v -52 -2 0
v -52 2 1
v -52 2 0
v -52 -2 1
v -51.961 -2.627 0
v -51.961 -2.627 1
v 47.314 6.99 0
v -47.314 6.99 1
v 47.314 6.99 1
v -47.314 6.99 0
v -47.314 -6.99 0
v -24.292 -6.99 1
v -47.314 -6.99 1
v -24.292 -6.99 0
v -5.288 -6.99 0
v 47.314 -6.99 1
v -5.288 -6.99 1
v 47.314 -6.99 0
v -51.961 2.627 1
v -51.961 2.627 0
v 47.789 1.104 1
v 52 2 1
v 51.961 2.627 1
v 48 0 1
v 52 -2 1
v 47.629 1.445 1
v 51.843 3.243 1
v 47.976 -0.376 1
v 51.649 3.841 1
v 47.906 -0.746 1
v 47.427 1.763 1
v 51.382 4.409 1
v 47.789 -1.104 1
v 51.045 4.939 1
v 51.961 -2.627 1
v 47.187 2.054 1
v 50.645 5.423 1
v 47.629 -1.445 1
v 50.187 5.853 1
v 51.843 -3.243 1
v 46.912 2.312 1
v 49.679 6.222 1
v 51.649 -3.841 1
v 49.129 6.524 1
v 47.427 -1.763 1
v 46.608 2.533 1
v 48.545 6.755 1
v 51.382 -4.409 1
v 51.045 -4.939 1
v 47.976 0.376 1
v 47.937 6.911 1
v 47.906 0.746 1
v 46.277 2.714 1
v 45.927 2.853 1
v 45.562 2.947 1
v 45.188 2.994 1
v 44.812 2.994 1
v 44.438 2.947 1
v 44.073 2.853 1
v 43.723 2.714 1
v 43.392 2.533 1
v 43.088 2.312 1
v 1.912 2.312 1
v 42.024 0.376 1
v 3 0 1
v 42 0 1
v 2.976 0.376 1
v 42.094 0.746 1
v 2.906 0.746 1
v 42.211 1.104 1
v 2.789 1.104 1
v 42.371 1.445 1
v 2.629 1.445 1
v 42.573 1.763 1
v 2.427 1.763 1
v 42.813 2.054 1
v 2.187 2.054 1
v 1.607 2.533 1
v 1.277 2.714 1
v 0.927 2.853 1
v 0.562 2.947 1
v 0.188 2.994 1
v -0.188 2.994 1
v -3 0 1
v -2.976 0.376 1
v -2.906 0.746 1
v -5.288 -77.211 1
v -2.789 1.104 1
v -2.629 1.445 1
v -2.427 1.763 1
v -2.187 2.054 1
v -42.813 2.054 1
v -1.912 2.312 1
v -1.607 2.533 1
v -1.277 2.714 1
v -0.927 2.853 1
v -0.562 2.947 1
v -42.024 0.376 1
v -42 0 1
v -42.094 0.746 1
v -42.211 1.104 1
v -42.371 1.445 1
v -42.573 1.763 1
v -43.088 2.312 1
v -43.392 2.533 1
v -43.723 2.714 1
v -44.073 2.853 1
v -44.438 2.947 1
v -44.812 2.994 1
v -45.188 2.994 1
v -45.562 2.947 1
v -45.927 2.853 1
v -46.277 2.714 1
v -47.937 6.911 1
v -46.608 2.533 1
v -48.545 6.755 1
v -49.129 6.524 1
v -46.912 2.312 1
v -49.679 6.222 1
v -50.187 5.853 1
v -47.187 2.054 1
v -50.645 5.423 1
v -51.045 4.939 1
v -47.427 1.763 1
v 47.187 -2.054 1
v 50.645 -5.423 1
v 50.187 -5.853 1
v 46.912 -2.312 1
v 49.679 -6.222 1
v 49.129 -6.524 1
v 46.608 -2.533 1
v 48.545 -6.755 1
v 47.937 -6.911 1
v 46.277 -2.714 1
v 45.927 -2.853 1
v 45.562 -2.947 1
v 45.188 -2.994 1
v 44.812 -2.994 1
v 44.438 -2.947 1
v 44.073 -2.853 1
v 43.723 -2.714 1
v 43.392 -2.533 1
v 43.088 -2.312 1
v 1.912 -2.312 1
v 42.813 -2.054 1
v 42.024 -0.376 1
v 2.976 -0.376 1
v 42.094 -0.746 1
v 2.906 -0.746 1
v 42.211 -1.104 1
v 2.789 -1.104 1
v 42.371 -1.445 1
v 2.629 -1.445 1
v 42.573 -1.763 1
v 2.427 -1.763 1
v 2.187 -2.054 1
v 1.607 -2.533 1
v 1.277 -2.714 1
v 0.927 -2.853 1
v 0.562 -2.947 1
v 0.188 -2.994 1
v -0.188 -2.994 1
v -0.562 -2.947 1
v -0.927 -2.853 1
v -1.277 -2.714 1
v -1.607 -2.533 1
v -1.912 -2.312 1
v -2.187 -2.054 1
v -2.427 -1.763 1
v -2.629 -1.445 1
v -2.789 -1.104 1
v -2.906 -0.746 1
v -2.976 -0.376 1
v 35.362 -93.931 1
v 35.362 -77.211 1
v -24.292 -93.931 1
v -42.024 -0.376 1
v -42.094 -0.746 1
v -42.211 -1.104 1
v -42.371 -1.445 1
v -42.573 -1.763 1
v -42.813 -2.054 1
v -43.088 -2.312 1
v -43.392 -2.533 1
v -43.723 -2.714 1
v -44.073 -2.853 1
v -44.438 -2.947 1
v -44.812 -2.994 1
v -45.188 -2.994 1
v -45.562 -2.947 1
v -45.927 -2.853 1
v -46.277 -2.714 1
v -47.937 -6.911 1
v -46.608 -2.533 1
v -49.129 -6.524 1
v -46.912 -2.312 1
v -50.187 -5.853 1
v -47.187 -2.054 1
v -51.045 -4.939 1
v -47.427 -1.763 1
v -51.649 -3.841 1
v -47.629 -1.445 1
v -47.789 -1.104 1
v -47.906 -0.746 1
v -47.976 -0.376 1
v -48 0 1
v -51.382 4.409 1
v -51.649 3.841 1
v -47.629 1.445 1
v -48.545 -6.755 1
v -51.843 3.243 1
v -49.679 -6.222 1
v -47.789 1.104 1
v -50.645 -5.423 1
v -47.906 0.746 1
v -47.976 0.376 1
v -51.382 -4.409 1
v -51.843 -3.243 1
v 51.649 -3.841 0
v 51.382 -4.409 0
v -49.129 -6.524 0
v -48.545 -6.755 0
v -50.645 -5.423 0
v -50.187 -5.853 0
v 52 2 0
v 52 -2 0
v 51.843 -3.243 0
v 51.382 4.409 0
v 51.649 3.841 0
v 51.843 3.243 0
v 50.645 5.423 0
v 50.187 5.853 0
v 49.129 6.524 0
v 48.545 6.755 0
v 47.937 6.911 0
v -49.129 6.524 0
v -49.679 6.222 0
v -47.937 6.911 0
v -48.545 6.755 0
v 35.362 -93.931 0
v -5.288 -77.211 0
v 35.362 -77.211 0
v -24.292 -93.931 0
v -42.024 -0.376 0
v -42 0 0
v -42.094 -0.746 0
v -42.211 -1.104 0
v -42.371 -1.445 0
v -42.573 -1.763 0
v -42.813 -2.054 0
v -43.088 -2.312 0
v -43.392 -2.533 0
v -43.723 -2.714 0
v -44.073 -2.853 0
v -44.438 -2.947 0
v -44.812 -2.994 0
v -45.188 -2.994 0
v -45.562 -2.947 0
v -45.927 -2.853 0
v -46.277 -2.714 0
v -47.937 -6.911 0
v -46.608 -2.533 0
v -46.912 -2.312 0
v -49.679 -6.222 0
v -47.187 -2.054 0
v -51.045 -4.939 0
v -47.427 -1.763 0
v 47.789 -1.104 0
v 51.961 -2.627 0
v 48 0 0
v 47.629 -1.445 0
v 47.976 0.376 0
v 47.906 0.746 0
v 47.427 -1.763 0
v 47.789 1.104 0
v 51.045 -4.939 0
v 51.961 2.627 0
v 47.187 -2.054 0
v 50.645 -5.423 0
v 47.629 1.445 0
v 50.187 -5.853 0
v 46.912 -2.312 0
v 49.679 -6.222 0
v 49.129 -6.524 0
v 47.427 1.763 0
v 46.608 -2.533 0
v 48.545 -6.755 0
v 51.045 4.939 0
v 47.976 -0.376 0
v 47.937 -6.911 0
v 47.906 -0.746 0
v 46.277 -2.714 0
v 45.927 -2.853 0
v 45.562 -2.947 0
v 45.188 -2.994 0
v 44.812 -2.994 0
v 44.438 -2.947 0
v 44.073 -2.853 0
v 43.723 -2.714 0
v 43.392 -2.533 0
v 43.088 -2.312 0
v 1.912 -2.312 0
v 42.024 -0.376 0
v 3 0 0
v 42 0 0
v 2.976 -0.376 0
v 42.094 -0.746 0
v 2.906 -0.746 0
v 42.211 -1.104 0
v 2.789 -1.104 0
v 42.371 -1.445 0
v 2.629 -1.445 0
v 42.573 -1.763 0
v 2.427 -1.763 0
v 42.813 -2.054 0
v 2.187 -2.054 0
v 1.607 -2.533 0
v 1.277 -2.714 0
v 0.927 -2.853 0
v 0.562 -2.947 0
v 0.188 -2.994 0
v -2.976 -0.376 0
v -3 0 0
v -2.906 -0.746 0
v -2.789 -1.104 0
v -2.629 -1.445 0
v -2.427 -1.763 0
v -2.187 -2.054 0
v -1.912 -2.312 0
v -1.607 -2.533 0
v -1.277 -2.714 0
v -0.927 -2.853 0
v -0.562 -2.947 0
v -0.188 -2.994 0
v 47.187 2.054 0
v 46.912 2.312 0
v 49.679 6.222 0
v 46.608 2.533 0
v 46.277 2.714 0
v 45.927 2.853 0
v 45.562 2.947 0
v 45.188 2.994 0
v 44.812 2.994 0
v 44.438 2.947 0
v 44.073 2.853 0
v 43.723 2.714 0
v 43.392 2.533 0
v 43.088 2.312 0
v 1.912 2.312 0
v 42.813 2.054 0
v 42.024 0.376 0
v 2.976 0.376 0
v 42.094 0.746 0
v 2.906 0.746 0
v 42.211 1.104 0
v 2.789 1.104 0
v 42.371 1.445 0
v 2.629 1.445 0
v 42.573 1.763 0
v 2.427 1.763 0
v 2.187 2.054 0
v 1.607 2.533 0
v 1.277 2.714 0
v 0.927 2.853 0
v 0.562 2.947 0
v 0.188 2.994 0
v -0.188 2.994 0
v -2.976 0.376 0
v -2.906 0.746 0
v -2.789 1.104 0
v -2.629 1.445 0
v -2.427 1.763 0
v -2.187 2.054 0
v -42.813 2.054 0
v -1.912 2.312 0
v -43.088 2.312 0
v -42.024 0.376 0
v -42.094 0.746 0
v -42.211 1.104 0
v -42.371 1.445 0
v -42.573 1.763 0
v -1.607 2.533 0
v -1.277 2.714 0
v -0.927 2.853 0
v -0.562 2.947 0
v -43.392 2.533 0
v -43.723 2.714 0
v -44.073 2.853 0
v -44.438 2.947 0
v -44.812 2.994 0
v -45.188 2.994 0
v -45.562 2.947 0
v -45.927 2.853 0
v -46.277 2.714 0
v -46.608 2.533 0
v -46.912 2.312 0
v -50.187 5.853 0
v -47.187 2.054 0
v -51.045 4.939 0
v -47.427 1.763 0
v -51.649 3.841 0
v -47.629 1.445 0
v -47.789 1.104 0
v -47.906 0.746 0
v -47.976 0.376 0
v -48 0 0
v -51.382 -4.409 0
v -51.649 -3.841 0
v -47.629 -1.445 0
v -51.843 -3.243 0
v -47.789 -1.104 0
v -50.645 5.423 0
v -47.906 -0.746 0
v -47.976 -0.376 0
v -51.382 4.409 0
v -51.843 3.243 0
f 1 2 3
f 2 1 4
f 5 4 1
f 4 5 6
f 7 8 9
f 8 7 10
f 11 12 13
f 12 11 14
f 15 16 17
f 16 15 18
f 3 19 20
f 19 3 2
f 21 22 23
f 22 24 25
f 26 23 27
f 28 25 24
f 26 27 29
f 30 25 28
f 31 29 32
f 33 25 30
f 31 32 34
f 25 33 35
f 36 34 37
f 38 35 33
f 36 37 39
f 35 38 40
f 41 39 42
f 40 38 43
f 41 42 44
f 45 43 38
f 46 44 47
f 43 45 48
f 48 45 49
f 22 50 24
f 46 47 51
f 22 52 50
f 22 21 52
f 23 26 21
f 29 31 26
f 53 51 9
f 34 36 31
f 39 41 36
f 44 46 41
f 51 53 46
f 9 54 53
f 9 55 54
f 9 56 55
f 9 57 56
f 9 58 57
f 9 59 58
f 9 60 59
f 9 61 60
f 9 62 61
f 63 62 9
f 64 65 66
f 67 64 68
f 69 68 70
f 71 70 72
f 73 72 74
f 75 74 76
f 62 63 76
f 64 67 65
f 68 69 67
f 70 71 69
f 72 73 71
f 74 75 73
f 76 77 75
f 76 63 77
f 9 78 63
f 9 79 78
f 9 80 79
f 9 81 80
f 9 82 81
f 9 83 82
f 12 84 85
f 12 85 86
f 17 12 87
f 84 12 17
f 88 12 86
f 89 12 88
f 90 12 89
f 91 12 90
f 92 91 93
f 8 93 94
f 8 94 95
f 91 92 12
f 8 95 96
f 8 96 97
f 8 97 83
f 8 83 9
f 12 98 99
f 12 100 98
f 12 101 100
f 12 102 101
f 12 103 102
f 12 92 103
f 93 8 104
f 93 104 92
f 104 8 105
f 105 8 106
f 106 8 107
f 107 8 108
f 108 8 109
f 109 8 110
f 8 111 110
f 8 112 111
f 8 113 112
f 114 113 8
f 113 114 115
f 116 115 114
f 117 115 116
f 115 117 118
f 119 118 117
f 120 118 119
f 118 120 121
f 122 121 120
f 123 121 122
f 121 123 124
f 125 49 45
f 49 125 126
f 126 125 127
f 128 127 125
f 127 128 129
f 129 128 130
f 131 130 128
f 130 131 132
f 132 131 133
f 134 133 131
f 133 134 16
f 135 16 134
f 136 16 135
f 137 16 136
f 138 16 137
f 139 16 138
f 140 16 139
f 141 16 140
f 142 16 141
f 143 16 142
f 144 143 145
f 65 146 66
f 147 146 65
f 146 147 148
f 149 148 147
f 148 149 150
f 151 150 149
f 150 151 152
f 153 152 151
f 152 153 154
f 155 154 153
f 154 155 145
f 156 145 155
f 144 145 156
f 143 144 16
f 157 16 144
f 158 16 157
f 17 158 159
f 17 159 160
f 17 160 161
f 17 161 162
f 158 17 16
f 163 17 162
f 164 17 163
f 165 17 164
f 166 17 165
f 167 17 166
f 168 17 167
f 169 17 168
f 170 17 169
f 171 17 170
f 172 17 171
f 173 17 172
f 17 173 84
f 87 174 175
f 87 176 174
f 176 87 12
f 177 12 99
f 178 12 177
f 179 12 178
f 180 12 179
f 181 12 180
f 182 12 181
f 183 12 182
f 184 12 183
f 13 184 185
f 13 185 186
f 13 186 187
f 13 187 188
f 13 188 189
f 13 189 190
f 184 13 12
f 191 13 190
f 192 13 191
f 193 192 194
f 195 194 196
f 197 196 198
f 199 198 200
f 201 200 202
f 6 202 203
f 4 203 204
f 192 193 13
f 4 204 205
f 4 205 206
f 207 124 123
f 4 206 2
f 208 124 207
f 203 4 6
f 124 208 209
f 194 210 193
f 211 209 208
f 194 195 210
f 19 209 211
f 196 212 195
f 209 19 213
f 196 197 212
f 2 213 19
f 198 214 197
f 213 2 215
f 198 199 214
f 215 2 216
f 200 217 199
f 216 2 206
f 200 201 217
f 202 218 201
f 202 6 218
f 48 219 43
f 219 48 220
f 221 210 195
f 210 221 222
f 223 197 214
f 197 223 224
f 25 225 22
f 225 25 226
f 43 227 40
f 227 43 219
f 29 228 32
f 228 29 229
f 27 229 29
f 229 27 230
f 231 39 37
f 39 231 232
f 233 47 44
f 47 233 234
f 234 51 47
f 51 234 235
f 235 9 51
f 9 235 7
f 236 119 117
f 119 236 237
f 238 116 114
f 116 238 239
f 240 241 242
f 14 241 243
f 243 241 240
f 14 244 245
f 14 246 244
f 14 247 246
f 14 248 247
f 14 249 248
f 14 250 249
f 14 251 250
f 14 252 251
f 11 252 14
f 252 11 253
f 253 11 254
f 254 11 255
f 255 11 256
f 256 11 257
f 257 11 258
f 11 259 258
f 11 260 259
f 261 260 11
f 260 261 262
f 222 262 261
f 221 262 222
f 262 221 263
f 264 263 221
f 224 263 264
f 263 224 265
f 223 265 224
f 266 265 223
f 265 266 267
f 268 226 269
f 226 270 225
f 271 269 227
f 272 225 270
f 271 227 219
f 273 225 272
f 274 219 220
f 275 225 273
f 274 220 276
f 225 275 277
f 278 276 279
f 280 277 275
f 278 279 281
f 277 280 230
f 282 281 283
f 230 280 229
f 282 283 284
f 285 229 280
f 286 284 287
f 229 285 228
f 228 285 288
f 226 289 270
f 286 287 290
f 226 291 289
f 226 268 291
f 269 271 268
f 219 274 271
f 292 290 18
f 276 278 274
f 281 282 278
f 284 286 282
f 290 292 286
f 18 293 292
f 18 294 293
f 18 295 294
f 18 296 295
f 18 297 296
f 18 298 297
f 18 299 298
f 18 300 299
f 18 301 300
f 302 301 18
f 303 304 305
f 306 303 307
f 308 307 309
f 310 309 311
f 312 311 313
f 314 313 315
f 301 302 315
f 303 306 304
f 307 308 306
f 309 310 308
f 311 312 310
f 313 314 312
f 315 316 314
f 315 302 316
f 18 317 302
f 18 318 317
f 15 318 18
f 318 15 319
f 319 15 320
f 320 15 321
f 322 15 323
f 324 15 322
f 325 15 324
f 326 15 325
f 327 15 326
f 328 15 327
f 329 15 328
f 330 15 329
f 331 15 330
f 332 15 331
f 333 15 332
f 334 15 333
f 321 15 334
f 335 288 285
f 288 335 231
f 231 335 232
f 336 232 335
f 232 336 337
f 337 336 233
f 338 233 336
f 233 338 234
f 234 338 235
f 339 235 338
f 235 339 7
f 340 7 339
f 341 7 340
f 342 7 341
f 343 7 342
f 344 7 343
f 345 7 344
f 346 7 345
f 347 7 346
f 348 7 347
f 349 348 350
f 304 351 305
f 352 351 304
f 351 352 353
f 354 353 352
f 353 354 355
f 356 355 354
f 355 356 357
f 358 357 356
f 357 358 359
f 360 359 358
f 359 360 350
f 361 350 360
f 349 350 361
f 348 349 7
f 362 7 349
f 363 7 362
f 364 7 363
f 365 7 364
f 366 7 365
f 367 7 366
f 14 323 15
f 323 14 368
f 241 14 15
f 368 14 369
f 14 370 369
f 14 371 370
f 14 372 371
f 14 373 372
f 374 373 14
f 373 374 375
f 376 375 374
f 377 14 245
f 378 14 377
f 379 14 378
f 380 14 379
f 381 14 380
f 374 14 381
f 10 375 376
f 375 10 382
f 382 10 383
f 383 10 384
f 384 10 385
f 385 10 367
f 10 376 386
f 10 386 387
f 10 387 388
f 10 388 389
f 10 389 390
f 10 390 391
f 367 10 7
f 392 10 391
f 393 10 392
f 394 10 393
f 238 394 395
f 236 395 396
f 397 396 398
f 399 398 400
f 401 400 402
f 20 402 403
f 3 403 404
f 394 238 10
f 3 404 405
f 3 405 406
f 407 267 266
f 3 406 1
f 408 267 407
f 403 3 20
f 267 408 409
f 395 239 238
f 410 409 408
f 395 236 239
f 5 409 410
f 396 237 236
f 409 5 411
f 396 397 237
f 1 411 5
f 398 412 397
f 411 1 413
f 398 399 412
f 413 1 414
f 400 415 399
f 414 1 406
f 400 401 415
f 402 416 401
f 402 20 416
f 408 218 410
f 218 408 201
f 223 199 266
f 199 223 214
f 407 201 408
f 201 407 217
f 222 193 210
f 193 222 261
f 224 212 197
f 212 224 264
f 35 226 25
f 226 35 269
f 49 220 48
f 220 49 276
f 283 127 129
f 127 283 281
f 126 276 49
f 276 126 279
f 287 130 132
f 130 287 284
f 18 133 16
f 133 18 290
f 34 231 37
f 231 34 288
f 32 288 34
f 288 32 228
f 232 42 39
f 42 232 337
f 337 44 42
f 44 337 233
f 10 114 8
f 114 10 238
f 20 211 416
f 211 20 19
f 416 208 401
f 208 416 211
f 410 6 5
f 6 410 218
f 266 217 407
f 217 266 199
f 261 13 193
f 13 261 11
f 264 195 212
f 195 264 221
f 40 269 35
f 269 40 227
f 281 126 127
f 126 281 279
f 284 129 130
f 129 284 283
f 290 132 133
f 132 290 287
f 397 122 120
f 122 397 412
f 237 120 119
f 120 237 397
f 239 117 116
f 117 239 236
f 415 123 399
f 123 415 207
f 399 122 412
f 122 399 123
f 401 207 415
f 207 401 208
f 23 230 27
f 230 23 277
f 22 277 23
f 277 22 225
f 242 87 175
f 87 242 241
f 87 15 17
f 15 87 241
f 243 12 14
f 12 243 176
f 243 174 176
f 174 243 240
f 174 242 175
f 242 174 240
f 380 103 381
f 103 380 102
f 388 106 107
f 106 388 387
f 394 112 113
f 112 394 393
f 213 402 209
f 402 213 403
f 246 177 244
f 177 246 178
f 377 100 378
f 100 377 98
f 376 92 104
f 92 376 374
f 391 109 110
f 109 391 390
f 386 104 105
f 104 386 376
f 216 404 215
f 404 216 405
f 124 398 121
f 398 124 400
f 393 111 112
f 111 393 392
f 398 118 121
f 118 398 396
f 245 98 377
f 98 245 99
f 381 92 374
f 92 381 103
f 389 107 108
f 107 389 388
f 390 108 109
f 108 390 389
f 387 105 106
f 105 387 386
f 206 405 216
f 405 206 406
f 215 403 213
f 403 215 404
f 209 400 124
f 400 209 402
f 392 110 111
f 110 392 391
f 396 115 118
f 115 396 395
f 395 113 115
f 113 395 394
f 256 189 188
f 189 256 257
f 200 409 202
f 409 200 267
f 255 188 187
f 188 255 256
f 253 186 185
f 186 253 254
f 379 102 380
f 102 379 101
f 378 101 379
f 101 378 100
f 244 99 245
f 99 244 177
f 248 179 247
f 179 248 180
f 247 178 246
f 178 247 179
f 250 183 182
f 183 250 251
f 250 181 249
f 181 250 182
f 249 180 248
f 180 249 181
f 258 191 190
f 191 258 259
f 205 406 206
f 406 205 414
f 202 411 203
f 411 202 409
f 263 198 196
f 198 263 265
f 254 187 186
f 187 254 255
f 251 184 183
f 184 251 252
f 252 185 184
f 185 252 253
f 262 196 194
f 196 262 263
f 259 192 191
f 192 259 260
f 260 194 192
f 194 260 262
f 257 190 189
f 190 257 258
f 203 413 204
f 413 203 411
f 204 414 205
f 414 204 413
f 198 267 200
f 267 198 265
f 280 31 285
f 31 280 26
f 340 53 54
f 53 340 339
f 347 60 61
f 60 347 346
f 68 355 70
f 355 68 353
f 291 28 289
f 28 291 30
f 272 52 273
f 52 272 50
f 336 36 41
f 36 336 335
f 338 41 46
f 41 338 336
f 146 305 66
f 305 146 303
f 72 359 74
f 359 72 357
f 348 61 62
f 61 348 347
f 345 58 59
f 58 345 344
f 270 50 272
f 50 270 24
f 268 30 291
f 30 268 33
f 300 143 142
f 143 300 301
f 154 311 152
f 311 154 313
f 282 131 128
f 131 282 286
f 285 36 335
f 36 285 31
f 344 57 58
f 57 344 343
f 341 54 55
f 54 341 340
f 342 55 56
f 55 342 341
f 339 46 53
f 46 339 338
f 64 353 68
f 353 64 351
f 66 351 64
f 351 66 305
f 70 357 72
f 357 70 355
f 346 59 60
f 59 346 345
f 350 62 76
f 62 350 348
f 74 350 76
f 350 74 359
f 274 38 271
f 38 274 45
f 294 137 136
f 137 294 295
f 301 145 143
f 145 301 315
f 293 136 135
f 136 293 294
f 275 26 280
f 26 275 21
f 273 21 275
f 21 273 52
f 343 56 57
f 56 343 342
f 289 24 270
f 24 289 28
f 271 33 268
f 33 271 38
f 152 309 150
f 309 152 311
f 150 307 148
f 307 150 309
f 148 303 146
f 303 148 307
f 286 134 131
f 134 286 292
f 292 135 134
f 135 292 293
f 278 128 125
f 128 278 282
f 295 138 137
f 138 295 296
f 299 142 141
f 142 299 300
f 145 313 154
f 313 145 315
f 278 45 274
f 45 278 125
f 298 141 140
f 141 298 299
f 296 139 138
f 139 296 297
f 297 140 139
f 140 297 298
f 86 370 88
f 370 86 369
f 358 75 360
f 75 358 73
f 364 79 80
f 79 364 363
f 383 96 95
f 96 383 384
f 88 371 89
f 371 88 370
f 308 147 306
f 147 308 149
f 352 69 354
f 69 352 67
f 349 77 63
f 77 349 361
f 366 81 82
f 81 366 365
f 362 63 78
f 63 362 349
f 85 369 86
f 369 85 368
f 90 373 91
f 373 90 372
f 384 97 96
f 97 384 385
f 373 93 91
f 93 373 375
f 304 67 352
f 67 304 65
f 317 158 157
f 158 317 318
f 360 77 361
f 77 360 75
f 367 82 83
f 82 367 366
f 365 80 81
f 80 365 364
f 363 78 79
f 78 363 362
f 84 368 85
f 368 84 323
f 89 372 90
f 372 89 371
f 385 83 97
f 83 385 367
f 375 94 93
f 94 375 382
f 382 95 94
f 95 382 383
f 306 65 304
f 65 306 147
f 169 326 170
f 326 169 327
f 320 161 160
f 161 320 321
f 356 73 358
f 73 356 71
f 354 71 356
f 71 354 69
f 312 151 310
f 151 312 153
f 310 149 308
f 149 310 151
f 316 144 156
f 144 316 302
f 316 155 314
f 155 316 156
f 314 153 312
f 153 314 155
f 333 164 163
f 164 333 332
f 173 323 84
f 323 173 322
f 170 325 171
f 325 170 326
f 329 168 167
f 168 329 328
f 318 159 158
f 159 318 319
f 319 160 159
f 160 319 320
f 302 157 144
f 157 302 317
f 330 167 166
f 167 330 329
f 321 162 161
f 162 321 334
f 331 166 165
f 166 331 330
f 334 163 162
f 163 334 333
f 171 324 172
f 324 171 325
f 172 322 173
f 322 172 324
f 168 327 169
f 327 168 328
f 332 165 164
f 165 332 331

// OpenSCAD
$fn = 50;


difference() {
	union() {
		translate(v = [0, 0, 0]) {
			rotate(a = [0, 0, 0]) {
				hull() {
					translate(v = [-47.0000000000, 2.0000000000, 0]) {
						rotate(a = [0, 0, 0]) {
							translate(v = [0, 0, 0]) {
								rotate(a = [0, 0, 0]) {
									cylinder(h = 1, r = 5);
								}
							}
						}
					}
					translate(v = [47.0000000000, 2.0000000000, 0]) {
						rotate(a = [0, 0, 0]) {
							translate(v = [0, 0, 0]) {
								rotate(a = [0, 0, 0]) {
									cylinder(h = 1, r = 5);
								}
							}
						}
					}
					translate(v = [-47.0000000000, -2.0000000000, 0]) {
						rotate(a = [0, 0, 0]) {
							translate(v = [0, 0, 0]) {
								rotate(a = [0, 0, 0]) {
									cylinder(h = 1, r = 5);
								}
							}
						}
					}
					translate(v = [47.0000000000, -2.0000000000, 0]) {
						rotate(a = [0, 0, 0]) {
							translate(v = [0, 0, 0]) {
								rotate(a = [0, 0, 0]) {
									cylinder(h = 1, r = 5);
								}
							}
						}
					}
				}
			}
		}
		translate(v = [0, 0, 0]) {
			rotate(a = [0, 0, 0]) {
				linear_extrude(height = 1) {
					text(font = "DejaVu Sans Mono:style=Bold", halign = "center", size = 95, text = "L", valign = "top");
				}
			}
		}
	}
	union() {
		translate(v = [-45.0000000000, 0.0000000000, -125.0000000000]) {
			rotate(a = [0, 0, 0]) {
				cylinder(h = 250, r = 3.0000000000);
			}
		}
		translate(v = [45.0000000000, 0.0000000000, -125.0000000000]) {
			rotate(a = [0, 0, 0]) {
				cylinder(h = 250, r = 3.0000000000);
			}
		}
		translate(v = [45.0000000000, 0.0000000000, -125.0000000000]) {
			rotate(a = [0, 0, 0]) {
				cylinder(h = 250, r = 3.0000000000);
			}
		}
		translate(v = [0, 0, -125.0000000000]) {
			rotate(a = [0, 0, 0]) {
				cylinder(h = 250, r = 3.0000000000);
			}
		}
	}
}
